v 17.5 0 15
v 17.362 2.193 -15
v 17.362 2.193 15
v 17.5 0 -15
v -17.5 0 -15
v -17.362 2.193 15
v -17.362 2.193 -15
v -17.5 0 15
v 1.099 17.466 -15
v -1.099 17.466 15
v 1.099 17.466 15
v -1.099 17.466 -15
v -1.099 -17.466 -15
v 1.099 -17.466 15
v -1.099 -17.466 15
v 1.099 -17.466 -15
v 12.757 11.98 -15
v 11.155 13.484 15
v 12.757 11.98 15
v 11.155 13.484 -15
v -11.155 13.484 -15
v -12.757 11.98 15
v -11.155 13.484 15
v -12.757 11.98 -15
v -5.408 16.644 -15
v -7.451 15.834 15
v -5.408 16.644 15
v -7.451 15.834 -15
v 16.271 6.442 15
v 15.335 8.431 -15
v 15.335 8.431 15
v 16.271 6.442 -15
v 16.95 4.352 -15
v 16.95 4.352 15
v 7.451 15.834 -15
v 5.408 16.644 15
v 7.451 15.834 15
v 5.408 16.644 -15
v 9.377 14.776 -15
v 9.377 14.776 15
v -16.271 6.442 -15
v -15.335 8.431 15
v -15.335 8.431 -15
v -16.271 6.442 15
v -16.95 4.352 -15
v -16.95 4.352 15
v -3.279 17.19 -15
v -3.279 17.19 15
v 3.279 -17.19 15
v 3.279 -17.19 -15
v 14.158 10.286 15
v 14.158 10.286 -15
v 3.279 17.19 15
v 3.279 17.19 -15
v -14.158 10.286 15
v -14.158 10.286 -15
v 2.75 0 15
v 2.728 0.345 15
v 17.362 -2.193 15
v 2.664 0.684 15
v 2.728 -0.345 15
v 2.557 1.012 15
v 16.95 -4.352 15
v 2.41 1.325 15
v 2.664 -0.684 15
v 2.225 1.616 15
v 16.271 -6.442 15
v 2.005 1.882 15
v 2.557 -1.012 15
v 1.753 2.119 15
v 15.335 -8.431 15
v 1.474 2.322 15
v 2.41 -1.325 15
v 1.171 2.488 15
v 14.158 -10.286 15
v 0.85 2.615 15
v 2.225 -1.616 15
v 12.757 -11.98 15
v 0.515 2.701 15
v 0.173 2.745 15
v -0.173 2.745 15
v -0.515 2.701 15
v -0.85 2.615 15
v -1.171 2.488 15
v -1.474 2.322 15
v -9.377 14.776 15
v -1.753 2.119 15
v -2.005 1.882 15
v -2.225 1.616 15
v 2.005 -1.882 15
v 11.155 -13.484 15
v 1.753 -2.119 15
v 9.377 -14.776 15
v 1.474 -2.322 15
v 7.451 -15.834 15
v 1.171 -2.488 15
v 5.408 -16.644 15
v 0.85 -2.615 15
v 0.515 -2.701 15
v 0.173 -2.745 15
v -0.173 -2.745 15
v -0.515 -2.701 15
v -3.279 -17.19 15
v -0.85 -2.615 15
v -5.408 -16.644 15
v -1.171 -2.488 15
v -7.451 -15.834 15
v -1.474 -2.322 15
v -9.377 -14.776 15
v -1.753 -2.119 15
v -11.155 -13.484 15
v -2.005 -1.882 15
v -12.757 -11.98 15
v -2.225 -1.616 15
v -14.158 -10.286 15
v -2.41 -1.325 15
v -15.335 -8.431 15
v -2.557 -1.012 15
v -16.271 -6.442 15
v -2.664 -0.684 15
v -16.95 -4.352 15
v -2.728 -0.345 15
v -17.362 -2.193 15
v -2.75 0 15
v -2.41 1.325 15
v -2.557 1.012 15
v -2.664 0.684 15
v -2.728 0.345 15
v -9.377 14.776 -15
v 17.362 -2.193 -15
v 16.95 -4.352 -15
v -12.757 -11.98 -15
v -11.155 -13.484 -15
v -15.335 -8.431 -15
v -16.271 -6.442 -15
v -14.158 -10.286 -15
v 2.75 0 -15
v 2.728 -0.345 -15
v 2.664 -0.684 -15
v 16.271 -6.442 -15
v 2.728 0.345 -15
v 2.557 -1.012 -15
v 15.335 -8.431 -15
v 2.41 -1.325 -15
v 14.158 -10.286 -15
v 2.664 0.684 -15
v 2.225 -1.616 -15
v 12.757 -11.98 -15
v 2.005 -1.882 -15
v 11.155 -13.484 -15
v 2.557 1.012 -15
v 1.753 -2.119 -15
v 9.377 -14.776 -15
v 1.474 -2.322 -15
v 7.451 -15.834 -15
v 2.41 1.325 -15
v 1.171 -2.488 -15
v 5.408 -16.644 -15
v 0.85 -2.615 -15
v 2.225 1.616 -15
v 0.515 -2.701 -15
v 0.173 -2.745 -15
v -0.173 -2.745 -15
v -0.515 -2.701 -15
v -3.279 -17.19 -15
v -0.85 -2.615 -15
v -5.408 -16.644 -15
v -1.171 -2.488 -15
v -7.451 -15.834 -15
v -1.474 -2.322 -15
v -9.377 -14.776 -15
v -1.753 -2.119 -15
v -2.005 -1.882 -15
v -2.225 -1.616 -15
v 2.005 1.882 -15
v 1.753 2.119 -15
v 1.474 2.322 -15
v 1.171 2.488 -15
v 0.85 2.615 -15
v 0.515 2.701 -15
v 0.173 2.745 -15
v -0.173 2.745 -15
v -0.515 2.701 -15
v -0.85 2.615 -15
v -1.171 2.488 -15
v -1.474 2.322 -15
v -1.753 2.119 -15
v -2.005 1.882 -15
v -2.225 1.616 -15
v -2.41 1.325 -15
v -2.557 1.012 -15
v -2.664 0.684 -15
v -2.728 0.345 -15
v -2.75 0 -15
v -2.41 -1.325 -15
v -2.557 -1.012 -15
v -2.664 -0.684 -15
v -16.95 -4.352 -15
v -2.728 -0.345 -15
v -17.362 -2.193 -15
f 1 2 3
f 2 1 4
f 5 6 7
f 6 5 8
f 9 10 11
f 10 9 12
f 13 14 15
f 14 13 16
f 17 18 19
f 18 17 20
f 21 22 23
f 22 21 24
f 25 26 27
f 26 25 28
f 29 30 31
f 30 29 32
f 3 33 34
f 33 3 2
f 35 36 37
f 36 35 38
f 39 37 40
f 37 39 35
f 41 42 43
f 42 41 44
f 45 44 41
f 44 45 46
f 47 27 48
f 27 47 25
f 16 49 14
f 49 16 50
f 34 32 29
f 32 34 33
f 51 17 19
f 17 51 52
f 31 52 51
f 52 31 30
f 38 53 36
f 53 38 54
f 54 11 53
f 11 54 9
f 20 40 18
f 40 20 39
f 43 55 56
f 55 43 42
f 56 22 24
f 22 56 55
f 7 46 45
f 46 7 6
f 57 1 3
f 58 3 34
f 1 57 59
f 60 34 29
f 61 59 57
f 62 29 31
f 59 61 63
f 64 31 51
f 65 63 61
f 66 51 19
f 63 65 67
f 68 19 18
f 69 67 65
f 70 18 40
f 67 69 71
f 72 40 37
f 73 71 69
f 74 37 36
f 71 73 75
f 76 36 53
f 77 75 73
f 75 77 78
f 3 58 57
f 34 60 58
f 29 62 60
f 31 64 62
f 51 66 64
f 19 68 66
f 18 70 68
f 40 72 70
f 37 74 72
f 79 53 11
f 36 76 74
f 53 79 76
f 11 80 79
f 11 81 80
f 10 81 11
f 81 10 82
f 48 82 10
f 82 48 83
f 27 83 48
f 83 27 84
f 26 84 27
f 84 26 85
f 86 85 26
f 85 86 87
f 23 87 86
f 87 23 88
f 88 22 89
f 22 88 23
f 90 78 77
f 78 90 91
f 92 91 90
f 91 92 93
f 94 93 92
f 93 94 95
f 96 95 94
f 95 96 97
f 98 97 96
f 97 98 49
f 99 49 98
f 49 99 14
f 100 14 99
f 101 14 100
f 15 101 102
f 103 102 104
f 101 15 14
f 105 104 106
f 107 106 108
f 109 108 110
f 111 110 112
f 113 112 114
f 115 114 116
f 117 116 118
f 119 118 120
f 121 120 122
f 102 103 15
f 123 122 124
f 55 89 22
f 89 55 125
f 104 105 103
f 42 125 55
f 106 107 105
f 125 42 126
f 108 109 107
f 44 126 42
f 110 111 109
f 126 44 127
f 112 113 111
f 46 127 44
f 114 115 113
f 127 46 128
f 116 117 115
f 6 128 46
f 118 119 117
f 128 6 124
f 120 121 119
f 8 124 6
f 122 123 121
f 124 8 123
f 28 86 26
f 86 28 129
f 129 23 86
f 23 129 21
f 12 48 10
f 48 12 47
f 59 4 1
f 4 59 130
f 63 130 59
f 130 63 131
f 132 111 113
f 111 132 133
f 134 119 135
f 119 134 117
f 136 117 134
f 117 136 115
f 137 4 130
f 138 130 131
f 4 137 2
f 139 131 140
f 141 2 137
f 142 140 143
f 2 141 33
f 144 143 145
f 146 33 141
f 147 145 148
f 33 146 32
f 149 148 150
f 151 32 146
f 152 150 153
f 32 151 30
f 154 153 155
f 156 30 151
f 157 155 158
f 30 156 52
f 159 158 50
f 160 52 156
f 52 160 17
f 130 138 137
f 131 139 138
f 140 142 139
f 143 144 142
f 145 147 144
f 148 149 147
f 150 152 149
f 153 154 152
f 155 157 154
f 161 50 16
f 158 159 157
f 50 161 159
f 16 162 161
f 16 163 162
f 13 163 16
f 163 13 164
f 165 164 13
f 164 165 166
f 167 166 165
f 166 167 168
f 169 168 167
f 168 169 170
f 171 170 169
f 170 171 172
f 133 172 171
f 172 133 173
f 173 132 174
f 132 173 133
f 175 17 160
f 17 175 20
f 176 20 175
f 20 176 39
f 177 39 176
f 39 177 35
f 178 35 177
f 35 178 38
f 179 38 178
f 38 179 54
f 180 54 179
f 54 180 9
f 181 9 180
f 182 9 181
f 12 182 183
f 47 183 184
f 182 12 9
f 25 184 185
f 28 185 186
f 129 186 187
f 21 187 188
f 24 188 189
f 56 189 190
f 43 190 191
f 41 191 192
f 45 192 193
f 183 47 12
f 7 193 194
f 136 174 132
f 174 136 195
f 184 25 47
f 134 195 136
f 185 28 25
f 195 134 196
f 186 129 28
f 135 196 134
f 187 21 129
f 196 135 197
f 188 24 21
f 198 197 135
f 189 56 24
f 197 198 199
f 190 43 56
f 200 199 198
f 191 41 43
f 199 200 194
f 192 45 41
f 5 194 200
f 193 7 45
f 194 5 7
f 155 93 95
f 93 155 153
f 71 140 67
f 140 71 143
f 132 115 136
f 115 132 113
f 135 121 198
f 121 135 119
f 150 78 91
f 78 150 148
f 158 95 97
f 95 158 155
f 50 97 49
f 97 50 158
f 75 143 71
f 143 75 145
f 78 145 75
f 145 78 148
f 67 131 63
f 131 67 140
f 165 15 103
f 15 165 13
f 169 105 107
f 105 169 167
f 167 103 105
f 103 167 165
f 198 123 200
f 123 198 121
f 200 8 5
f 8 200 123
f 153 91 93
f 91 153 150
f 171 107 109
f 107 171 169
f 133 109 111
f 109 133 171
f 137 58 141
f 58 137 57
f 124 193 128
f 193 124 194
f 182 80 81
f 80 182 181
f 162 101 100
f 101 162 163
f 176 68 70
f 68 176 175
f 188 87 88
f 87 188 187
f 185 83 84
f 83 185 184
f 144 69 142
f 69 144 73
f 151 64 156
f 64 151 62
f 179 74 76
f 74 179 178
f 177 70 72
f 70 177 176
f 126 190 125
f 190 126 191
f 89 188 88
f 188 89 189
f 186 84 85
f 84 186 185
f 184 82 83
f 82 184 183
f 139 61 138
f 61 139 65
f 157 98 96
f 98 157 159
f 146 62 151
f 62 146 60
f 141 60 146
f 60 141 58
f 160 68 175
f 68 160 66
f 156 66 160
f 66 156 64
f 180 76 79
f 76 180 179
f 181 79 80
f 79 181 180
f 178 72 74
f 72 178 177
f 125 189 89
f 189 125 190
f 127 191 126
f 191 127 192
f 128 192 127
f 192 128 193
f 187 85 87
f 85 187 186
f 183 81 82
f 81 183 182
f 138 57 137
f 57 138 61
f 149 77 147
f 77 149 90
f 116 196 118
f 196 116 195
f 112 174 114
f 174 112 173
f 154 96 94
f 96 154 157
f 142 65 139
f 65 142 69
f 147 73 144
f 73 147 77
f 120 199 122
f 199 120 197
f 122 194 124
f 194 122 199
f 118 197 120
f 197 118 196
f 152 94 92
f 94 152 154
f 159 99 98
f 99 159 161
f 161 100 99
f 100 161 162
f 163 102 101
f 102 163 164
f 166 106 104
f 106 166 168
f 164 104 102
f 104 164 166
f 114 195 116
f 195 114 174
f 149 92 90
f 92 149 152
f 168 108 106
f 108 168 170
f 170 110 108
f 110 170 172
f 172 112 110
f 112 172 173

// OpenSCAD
$fn = 50;


difference() {
	union() {
		translate(v = [0, 0, -15.0000000000]) {
			cylinder(h = 30, r = 17.5000000000);
		}
	}
	union() {
		translate(v = [0, 0, -100.0000000000]) {
			cylinder(h = 200, r = 2.7500000000);
		}
	}
}
